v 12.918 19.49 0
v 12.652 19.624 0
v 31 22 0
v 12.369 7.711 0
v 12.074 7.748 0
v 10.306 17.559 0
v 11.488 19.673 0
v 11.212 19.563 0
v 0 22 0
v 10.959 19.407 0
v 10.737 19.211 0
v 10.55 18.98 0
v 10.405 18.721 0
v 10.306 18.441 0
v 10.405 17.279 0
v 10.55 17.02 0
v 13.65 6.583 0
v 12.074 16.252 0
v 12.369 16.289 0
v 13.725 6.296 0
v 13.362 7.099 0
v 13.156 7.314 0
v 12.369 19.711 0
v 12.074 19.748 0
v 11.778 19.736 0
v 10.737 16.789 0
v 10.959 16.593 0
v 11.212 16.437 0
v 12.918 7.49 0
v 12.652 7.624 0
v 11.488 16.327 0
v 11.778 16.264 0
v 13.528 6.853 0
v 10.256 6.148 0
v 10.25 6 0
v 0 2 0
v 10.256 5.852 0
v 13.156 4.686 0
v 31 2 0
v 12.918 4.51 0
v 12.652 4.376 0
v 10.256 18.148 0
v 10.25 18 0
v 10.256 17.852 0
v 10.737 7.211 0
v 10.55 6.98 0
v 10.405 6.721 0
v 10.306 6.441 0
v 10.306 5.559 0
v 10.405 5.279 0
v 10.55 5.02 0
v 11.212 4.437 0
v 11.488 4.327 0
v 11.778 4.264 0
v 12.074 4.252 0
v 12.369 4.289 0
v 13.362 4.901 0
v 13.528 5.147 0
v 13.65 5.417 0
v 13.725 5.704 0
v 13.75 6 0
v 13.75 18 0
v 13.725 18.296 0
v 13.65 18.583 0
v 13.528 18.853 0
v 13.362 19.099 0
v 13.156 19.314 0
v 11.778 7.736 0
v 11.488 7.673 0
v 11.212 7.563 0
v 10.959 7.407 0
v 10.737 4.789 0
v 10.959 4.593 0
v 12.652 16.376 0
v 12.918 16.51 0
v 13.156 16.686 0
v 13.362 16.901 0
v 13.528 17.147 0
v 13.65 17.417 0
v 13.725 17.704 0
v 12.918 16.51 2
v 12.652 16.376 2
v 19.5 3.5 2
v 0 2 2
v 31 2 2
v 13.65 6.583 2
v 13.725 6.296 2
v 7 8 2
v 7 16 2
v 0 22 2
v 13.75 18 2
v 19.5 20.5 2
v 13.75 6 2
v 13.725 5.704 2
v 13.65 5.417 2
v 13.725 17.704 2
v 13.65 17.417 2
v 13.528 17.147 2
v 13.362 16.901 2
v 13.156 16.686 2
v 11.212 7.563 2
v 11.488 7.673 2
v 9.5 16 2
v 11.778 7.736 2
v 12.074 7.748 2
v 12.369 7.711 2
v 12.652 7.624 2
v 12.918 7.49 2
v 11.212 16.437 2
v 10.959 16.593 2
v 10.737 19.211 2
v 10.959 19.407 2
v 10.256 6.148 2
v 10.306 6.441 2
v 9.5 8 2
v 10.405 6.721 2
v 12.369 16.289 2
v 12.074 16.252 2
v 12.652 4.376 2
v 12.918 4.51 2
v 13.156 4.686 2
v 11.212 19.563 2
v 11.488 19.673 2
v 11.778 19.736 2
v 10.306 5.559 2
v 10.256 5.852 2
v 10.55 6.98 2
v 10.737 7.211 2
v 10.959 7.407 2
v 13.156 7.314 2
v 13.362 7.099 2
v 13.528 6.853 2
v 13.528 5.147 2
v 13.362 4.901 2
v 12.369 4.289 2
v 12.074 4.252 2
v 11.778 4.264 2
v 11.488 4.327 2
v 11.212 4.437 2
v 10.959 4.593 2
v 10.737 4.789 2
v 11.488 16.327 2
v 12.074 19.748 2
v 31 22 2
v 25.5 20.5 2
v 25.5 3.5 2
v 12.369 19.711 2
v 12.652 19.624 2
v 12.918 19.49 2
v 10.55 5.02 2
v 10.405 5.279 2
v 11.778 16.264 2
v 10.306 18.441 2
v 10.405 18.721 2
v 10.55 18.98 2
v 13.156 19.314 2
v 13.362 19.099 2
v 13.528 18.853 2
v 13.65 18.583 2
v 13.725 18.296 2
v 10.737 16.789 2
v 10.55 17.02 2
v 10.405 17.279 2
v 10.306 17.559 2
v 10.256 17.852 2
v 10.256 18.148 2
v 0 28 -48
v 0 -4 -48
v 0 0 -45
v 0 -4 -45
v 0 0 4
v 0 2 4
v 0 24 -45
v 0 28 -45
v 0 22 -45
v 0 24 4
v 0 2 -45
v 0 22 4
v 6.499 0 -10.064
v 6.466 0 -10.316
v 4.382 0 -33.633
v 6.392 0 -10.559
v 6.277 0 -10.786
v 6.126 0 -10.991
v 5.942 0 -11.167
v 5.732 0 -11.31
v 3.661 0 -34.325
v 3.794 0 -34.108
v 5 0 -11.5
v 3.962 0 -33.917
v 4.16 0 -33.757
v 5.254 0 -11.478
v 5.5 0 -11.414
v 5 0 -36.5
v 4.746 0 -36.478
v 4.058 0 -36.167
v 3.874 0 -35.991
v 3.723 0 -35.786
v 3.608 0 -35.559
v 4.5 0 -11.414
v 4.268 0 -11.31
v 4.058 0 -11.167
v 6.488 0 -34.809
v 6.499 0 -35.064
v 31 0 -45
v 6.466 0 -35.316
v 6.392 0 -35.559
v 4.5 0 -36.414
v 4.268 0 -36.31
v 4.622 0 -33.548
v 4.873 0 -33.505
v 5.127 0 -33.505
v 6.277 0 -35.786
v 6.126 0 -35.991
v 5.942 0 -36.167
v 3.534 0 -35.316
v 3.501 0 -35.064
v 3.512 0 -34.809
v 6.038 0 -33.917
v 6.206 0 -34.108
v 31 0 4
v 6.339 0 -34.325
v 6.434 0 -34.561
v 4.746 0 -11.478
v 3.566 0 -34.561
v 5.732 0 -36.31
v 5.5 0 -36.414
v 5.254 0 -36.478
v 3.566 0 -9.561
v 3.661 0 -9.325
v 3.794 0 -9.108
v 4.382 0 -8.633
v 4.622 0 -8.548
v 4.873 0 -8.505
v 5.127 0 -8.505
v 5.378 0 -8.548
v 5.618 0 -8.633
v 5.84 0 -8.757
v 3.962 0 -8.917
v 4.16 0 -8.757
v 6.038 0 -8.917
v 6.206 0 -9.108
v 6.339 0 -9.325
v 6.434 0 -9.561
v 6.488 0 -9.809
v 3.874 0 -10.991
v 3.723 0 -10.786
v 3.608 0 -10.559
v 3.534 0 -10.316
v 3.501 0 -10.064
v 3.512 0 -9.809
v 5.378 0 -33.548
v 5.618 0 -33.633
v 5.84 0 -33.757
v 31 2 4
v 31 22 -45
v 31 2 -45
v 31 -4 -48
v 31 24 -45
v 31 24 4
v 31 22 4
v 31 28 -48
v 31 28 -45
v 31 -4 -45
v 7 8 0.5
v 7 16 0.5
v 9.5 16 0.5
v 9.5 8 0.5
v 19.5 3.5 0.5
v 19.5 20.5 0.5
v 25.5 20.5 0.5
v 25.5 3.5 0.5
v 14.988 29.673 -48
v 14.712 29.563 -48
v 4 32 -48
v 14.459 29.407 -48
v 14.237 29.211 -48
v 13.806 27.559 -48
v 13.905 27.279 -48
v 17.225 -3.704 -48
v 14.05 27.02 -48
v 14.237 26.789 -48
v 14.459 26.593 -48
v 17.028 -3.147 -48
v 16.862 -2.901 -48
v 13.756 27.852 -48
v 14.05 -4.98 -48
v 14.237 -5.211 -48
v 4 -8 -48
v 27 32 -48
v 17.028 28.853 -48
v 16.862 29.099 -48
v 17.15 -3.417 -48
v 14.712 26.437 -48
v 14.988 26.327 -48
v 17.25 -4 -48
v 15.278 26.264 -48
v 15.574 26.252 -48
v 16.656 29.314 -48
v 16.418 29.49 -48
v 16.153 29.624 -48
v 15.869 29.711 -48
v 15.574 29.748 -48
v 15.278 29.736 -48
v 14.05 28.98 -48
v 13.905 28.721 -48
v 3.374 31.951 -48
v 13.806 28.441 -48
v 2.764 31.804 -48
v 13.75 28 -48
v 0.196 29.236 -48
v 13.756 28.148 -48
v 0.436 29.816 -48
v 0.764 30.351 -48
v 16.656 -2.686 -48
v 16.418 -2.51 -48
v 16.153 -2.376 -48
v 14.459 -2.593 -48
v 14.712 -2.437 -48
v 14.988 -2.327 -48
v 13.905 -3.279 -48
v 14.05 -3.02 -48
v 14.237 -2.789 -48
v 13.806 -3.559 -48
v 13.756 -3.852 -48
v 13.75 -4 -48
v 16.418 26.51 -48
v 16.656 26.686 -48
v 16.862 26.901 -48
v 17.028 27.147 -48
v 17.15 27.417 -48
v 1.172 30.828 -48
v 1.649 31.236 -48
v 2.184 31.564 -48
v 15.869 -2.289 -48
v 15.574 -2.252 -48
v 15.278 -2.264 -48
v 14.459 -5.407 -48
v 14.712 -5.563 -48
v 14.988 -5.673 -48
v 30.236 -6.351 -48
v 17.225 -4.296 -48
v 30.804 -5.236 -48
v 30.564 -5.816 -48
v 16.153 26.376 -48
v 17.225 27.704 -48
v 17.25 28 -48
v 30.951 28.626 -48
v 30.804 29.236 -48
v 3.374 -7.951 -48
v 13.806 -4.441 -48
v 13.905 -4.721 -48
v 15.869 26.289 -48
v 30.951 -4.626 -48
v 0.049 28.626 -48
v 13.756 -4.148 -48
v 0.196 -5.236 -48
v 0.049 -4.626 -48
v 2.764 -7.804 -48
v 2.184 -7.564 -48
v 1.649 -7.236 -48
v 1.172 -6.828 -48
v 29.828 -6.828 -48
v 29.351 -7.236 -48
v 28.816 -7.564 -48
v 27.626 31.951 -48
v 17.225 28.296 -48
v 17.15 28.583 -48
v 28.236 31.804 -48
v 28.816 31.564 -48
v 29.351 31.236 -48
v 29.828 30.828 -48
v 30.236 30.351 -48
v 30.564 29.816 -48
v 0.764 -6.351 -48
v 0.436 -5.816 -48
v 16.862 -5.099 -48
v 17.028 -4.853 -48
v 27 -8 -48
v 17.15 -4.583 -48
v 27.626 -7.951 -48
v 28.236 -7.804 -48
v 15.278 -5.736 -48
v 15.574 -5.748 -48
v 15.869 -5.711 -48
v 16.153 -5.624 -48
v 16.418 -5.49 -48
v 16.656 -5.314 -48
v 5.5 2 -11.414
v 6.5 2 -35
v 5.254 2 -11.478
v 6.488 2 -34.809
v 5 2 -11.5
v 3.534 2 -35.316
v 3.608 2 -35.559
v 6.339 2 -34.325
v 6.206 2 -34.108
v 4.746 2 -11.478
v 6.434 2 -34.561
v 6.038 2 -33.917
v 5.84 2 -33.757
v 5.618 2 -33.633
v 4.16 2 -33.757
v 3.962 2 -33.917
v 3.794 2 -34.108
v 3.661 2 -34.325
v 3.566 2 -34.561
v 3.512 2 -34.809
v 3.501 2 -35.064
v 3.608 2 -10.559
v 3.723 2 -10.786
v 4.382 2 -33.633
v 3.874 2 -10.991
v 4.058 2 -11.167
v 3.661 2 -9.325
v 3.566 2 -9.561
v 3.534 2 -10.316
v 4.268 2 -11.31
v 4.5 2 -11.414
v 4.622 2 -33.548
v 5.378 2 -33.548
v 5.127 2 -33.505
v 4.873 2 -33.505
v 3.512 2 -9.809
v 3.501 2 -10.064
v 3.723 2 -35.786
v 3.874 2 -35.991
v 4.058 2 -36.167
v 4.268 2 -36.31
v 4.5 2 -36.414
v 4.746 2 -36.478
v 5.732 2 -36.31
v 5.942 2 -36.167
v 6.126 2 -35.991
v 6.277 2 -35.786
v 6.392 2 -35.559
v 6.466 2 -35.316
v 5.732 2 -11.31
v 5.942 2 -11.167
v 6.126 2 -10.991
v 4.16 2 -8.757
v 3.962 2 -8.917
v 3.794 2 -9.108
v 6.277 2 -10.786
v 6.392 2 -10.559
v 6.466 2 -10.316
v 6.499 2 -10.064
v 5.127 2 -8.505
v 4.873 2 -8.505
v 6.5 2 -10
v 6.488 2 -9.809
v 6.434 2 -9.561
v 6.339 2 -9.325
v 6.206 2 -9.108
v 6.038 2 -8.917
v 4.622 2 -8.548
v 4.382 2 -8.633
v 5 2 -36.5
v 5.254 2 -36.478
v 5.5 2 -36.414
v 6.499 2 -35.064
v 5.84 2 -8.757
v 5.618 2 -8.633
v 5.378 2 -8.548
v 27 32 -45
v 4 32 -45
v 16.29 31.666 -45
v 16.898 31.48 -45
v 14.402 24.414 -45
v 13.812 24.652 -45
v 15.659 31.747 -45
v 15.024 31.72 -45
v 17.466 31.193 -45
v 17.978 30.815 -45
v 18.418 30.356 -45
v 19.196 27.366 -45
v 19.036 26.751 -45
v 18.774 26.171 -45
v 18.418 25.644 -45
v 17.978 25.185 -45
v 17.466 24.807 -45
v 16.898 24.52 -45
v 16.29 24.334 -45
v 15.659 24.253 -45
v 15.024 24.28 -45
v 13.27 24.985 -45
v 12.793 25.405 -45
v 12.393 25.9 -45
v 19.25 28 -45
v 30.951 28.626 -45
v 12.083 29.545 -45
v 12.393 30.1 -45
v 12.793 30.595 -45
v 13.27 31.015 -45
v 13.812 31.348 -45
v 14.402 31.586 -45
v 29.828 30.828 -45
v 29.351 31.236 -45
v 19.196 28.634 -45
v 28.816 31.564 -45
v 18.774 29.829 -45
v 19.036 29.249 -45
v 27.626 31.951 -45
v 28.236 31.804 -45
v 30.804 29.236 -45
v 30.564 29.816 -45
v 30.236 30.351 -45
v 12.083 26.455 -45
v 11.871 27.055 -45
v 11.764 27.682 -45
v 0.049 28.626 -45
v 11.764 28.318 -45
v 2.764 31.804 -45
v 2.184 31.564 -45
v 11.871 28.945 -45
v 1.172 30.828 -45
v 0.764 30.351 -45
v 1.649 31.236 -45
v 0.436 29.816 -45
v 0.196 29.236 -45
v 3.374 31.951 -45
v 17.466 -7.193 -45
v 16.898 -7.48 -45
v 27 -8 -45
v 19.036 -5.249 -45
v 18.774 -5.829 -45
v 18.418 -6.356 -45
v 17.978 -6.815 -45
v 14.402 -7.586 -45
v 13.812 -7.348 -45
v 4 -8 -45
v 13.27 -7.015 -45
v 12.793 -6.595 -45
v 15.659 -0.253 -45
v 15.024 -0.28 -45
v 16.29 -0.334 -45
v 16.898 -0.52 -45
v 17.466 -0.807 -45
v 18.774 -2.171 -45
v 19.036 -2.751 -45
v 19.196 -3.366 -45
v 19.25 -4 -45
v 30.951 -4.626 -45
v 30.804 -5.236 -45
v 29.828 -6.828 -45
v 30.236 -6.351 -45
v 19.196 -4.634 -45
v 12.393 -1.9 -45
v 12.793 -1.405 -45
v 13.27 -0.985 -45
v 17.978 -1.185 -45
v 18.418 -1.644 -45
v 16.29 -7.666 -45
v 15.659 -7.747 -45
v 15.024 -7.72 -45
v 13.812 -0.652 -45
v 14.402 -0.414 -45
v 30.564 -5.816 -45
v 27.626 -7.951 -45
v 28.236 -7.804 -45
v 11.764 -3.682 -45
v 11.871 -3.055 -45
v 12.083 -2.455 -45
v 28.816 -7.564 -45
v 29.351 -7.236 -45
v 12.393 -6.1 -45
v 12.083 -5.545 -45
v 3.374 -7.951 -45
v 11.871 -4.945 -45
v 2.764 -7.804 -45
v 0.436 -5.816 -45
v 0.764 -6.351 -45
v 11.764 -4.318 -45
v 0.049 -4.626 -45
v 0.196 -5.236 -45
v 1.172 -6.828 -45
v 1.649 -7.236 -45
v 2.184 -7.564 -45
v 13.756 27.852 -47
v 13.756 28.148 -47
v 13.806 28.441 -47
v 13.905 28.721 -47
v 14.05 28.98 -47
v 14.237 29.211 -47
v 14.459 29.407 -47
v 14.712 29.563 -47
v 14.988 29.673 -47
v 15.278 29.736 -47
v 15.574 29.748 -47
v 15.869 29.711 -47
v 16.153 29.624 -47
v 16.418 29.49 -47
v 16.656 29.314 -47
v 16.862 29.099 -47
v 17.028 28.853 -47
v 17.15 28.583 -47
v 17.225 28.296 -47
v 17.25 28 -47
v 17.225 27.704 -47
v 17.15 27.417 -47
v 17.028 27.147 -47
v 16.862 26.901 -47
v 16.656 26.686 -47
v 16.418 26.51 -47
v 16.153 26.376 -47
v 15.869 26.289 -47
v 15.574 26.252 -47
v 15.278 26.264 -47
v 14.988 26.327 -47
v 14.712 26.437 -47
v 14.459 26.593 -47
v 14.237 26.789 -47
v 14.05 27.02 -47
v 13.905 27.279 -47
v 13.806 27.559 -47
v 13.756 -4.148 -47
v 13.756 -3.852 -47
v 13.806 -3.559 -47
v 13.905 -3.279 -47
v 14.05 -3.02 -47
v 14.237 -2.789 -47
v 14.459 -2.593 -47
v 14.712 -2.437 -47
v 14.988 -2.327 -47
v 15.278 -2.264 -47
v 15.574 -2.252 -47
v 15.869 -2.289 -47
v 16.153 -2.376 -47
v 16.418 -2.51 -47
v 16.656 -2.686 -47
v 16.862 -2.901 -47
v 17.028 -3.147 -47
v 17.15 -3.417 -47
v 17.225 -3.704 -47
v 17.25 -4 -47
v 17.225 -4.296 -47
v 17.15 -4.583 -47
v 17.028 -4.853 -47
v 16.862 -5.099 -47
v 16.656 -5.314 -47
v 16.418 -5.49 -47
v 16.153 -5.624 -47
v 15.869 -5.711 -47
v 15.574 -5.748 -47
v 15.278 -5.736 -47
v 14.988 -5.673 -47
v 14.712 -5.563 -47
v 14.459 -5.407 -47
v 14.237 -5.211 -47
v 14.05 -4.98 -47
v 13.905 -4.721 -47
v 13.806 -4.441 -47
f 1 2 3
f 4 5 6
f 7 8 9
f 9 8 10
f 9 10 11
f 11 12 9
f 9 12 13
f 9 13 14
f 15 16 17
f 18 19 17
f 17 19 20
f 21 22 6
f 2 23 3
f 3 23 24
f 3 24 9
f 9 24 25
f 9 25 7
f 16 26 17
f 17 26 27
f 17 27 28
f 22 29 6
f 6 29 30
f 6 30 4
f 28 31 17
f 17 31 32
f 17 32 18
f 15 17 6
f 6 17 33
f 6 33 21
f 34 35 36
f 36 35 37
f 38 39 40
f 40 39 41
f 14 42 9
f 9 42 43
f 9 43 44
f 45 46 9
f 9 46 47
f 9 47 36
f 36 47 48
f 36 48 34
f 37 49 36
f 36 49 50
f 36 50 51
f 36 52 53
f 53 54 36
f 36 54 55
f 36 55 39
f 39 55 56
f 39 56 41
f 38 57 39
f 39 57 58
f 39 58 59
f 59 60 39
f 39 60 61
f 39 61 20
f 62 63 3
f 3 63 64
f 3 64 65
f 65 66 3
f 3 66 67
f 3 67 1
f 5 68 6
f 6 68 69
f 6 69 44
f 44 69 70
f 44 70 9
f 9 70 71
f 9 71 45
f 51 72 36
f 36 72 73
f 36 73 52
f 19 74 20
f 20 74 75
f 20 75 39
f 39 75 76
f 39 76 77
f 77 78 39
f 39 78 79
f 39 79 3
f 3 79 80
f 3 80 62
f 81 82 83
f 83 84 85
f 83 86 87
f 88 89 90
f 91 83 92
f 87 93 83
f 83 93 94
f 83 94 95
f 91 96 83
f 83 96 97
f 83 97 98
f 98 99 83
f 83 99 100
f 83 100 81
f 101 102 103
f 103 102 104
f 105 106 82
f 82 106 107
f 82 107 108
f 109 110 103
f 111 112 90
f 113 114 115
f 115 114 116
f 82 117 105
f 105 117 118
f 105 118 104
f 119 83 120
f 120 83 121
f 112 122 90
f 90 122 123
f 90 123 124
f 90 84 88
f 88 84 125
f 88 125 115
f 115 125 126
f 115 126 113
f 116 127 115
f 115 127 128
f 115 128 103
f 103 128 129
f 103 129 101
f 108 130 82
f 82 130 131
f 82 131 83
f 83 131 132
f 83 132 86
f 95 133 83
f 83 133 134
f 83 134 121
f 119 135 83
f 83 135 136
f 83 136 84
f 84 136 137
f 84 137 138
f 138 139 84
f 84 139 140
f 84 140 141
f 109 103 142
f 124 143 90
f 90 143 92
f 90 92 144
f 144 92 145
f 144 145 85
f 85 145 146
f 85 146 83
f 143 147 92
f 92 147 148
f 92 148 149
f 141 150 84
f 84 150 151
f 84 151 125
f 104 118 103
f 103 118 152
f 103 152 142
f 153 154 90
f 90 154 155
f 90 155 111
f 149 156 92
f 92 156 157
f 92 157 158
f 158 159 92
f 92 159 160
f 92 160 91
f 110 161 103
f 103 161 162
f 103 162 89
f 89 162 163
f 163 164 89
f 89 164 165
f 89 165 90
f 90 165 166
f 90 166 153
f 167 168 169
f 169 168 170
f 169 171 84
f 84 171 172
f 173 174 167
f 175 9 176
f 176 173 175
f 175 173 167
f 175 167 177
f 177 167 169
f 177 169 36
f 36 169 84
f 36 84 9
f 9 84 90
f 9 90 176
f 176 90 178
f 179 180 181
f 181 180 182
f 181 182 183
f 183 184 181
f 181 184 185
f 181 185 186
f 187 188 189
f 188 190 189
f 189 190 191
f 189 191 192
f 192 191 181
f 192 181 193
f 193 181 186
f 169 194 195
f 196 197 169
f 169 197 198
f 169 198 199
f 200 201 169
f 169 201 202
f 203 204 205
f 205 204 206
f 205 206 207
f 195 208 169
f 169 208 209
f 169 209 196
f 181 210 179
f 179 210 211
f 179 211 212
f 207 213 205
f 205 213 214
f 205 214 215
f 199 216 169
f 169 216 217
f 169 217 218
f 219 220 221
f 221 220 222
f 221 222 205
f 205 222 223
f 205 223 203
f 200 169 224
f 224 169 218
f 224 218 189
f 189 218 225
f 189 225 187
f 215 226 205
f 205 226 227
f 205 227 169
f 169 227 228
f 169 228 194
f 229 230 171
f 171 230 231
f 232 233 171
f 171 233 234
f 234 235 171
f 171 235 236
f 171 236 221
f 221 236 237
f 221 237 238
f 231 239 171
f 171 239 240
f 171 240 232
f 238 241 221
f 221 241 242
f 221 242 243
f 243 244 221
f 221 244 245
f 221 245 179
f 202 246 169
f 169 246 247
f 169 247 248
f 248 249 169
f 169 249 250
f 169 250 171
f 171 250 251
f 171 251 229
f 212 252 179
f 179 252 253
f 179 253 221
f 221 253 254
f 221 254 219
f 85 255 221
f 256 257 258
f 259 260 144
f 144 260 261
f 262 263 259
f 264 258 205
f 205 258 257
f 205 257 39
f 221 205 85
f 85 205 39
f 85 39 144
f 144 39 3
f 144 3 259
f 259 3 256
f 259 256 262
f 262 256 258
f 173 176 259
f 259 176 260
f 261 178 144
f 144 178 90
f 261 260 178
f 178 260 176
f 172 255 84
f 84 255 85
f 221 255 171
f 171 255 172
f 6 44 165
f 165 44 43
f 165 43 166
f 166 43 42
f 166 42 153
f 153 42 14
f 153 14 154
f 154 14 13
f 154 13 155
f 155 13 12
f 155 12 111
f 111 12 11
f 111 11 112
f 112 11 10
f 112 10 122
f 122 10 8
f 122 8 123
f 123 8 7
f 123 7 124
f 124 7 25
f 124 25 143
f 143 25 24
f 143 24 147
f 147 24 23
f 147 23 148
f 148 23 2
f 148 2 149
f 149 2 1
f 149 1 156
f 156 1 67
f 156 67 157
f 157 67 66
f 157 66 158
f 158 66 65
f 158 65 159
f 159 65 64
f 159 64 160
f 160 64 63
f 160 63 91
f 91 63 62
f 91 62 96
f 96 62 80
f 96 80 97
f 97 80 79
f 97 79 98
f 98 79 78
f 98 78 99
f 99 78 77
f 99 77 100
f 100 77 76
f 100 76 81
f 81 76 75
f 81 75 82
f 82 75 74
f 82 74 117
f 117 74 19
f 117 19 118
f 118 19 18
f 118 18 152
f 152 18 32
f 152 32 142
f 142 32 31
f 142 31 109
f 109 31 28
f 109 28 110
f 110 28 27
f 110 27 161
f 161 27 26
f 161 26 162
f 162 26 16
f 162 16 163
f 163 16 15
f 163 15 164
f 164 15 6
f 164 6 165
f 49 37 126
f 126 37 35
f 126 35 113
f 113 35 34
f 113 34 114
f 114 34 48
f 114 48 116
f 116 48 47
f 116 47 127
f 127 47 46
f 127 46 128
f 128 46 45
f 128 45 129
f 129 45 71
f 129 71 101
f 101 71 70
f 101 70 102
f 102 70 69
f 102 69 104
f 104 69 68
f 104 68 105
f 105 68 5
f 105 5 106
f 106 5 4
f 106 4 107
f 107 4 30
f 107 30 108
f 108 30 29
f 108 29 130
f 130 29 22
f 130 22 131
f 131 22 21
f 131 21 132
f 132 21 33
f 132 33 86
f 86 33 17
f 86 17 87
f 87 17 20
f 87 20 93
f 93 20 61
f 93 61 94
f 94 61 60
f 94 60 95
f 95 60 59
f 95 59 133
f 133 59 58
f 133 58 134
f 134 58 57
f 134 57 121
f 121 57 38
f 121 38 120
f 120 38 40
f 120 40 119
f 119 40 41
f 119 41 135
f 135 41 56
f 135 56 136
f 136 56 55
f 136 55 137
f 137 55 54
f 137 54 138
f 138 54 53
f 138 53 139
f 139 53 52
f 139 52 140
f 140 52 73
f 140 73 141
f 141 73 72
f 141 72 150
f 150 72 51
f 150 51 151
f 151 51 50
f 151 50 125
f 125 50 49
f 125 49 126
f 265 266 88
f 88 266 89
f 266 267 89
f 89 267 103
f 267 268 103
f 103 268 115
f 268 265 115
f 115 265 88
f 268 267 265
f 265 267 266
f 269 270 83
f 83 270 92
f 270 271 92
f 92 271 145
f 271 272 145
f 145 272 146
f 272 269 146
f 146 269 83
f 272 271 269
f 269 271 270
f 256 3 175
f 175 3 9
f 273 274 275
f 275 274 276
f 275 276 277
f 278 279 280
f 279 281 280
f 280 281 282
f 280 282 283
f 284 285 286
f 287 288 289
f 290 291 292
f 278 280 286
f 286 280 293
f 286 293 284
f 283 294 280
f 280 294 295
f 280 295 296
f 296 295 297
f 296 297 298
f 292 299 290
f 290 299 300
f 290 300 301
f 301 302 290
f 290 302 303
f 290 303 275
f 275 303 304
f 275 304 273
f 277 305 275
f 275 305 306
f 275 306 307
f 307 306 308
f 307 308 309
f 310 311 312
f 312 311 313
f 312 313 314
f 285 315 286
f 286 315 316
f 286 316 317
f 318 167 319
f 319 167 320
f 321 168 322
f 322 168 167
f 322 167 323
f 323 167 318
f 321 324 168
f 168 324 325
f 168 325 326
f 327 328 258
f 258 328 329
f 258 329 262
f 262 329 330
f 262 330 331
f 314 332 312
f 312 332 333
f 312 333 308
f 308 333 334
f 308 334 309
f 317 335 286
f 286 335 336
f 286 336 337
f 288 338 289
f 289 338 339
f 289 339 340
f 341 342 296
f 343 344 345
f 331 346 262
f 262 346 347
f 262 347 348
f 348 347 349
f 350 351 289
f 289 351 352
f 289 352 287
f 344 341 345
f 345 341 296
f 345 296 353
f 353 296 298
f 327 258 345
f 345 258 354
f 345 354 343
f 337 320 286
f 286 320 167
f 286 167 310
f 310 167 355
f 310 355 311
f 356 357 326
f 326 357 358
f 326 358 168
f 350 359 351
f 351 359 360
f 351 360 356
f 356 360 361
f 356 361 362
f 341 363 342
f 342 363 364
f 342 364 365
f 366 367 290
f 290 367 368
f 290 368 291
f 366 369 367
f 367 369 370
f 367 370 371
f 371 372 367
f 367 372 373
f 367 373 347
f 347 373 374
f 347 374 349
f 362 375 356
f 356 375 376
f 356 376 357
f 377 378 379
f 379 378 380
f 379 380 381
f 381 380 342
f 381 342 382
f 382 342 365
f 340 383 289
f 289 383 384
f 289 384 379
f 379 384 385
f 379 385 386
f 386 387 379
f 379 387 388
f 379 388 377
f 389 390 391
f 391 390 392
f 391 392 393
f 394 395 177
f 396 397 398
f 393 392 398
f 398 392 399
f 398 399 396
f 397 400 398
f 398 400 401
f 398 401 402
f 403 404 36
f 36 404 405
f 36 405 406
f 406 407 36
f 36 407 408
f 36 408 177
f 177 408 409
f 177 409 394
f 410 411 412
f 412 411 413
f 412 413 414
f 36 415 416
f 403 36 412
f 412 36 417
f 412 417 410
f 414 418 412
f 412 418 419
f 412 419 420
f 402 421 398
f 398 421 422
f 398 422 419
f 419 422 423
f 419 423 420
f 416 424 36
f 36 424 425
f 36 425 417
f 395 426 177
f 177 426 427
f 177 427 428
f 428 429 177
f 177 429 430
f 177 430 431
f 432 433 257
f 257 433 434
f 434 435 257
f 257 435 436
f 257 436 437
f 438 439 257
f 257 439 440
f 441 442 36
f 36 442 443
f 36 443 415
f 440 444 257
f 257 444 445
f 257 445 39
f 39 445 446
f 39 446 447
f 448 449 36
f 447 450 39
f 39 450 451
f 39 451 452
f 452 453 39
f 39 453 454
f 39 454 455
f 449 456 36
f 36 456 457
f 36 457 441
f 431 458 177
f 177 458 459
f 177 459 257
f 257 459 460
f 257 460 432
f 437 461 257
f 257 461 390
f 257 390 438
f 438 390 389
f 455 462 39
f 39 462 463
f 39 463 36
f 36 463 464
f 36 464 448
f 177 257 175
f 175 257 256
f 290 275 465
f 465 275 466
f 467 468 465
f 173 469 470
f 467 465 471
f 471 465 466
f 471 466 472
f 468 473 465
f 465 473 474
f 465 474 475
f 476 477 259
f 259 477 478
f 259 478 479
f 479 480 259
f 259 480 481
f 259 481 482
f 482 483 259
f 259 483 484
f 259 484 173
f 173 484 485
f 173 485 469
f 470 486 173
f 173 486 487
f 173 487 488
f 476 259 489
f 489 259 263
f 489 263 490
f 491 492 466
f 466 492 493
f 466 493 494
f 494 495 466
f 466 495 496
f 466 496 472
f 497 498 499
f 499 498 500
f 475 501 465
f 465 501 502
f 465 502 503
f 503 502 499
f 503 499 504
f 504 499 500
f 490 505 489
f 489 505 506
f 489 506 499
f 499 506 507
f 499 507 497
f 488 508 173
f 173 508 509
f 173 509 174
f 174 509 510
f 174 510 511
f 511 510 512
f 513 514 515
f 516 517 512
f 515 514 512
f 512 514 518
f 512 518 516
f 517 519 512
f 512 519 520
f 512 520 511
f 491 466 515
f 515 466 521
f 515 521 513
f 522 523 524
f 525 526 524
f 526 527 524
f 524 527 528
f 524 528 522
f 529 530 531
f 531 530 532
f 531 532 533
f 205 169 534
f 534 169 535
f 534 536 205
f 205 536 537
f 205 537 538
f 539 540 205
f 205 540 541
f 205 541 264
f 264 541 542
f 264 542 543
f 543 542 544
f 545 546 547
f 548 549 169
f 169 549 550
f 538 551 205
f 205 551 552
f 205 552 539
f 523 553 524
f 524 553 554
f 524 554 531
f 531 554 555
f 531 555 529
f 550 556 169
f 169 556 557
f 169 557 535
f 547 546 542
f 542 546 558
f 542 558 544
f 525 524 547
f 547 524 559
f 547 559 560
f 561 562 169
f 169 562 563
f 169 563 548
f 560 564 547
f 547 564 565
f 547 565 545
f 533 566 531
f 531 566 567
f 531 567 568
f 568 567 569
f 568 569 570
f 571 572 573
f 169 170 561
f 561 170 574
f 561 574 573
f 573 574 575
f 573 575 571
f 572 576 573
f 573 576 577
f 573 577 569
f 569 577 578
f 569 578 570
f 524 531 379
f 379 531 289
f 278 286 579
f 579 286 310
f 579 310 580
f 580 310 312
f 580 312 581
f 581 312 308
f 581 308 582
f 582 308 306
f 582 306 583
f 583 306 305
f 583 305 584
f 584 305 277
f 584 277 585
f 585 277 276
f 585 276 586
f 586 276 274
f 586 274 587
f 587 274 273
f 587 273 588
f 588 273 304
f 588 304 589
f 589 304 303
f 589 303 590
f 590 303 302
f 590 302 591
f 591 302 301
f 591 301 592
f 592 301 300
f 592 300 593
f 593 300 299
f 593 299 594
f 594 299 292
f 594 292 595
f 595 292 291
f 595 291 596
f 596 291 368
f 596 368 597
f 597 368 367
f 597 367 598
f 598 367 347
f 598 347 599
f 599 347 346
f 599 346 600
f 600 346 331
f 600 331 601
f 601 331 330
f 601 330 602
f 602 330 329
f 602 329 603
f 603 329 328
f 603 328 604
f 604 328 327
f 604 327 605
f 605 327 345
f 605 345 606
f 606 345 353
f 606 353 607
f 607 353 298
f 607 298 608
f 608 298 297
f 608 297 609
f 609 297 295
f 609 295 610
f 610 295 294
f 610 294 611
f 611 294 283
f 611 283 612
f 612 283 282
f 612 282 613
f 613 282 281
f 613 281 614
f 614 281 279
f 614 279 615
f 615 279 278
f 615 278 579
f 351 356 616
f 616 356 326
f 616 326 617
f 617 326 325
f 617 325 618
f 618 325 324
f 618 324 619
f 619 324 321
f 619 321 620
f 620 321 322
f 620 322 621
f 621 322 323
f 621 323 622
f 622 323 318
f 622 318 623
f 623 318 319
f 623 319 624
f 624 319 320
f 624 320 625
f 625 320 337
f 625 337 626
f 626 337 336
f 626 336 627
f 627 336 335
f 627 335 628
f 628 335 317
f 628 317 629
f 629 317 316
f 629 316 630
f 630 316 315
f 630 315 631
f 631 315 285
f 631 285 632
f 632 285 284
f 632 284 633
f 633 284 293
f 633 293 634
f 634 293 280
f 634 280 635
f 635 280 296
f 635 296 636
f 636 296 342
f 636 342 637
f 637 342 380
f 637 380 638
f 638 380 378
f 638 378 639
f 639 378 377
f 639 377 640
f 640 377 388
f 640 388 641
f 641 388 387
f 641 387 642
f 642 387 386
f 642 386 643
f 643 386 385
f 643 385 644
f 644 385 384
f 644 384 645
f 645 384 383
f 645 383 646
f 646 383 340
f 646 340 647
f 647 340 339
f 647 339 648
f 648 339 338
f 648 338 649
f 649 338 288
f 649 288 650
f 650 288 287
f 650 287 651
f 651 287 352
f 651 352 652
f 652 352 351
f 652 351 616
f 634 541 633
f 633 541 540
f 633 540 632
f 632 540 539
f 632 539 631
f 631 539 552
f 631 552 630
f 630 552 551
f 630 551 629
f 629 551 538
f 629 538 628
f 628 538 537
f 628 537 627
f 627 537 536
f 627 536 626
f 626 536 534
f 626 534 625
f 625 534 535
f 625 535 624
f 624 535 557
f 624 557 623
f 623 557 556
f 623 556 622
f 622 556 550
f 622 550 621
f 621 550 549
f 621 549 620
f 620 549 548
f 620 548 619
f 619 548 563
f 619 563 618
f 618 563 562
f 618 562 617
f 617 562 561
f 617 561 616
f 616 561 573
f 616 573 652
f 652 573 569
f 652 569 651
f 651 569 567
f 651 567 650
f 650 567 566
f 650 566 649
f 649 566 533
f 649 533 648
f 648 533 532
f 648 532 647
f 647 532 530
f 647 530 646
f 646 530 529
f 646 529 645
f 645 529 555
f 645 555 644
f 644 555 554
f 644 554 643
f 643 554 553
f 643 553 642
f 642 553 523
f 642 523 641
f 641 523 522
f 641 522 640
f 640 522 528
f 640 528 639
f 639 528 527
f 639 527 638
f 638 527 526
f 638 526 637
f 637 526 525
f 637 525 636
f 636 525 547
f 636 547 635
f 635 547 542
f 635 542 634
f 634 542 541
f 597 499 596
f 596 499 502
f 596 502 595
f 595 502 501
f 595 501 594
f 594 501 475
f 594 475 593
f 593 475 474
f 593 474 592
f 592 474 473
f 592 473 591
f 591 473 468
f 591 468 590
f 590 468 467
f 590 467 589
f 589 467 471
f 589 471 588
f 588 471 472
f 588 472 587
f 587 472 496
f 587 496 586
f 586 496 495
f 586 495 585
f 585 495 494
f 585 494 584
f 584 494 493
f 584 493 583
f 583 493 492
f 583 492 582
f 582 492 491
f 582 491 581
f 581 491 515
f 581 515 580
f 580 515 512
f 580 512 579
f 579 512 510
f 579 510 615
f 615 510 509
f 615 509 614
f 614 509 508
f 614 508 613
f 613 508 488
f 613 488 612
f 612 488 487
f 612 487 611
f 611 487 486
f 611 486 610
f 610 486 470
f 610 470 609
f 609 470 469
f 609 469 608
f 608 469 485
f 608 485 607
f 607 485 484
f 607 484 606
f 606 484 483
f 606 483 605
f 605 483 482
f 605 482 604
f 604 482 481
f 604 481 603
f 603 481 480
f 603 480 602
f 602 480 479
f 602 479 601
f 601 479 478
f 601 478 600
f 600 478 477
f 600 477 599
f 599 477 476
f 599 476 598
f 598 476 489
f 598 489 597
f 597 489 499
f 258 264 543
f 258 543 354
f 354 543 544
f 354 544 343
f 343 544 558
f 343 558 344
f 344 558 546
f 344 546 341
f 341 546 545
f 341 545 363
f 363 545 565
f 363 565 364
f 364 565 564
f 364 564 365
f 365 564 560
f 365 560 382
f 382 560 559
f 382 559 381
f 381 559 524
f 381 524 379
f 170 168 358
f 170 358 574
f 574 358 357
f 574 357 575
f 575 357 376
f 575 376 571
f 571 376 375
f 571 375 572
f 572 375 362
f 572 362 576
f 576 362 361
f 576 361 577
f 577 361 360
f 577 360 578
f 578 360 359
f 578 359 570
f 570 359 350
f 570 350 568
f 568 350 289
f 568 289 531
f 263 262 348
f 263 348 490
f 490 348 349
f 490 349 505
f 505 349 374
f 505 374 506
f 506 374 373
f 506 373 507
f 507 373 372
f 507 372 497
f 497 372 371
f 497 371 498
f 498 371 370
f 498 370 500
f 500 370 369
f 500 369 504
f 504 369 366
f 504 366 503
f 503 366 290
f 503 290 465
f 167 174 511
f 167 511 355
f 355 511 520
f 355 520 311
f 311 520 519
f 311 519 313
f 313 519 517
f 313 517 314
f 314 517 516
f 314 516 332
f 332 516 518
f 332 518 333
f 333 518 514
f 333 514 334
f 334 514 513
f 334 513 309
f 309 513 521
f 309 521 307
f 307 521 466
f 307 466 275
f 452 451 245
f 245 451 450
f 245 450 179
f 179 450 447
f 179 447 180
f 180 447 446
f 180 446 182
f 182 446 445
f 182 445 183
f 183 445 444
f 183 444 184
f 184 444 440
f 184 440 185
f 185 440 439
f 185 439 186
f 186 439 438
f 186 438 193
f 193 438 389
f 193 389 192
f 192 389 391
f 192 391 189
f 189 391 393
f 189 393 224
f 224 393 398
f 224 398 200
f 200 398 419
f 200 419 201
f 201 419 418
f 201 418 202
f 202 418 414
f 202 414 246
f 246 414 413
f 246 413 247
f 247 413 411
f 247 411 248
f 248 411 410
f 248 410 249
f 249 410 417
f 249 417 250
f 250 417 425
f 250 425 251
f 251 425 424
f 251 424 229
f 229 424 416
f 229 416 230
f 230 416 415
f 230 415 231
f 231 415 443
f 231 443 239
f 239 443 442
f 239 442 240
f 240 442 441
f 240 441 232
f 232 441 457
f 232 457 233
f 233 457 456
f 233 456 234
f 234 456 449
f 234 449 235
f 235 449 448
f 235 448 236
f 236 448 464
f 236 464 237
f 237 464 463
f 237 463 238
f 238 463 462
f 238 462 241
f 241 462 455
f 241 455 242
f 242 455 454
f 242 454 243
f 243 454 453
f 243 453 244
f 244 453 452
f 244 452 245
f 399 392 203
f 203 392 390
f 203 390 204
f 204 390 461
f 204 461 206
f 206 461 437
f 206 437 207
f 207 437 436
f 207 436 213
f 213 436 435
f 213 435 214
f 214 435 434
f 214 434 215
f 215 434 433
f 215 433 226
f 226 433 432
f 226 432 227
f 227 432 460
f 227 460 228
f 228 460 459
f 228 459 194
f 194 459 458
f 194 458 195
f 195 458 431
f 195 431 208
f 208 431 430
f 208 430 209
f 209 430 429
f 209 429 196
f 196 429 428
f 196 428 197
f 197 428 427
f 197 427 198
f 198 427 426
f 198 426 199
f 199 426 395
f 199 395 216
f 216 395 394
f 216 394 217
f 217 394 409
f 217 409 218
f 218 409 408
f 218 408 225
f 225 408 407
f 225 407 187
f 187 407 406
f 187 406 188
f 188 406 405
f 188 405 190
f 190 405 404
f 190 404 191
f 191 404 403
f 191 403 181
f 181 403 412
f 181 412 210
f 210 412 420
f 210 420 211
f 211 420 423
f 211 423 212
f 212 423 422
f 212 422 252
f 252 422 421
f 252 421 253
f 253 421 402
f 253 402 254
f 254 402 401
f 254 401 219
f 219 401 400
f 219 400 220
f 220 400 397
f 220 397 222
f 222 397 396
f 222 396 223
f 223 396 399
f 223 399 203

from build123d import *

# Parameters (mm, degrees)
SKETCH1_W           = 31
SKETCH1_H           = 24
BOSS_EXTRUDE1_DEPTH = 2
SKETCH2_W           = 31
SKETCH2_H           = 2
BOSS_EXTRUDE2_DEPTH = 2
SKETCH4_R           = 1.75
CUT_EXTRUDE1_DEPTH  = 3
SKETCH5_W           = 2.5
SKETCH5_H           = 8
SKETCH5_W_2         = 6
SKETCH5_H_2         = 17
CUT_EXTRUDE2_DEPTH  = 1.5
SKETCH6_W           = 31
SKETCH6_H           = 2
BOSS_EXTRUDE4_DEPTH = 48
BOSS_EXTRUDE5_START = 8
SKETCH8_W           = 31
SKETCH8_H           = 3
BOSS_EXTRUDE5_DEPTH = 40
SKETCH9_R           = 1.75
CUT_EXTRUDE3_DEPTH  = 38
CHAMFER1_SIZE       = 2
FILLET1_R           = 4
SKETCH10_R          = 1.5
CUT_EXTRUDE4_DEPTH  = 5


with BuildPart() as part:
    # Sketch1 → Boss-Extrude1 (new body)
    with BuildSketch(Plane.XY):
        with Locations((15.5, 12)):
            Rectangle(SKETCH1_W, SKETCH1_H)
    extrude(amount=BOSS_EXTRUDE1_DEPTH)

    # Sketch2 → Boss-Extrude2 (add)
    with BuildSketch(Plane.XY.offset(2)):
        with Locations((15.5, 23)):
            Rectangle(SKETCH2_W, SKETCH2_H)
        with Locations((15.5, 1)):
            Rectangle(SKETCH2_W, SKETCH2_H)
    extrude(amount=BOSS_EXTRUDE2_DEPTH)

    # Sketch4 → Cut-Extrude1 (cut)
    with BuildSketch(Plane.XY.offset(2)):
        with Locations((12, 18)):
            Circle(SKETCH4_R)
        with Locations((12, 6)):
            Circle(SKETCH4_R)
    extrude(amount=-CUT_EXTRUDE1_DEPTH, mode=Mode.SUBTRACT)

    # Sketch5 → Cut-Extrude2 (cut)
    with BuildSketch(Plane.XY.offset(2)):
        with Locations((8.25, 12)):
            Rectangle(SKETCH5_W, SKETCH5_H)
        with Locations((22.5, 12)):
            Rectangle(SKETCH5_W_2, SKETCH5_H_2)
    extrude(amount=-CUT_EXTRUDE2_DEPTH, mode=Mode.SUBTRACT)

    # Sketch6 → Boss-Extrude4 (add)
    with BuildSketch(Plane(origin=(0, 0, 0), x_dir=(-1, 0, 0), z_dir=(0, 0, -1))):
        with Locations((-15.5, 23)):
            Rectangle(SKETCH6_W, SKETCH6_H)
        with Locations((-15.5, 1)):
            Rectangle(SKETCH6_W, SKETCH6_H)
    extrude(amount=BOSS_EXTRUDE4_DEPTH)

    # Sketch8 → Boss-Extrude5 (add)
    with BuildSketch(Plane.XZ.offset(BOSS_EXTRUDE5_START)):
        with Locations((15.5, -46.5)):
            Rectangle(SKETCH8_W, SKETCH8_H)
    extrude(amount=-BOSS_EXTRUDE5_DEPTH)

    # Sketch9 → Cut-Extrude3 (cut)
    with BuildSketch(Plane.XY.offset(-45)):
        with Locations((15.5, 28)):
            Circle(SKETCH9_R)
        with Locations((15.5, -4)):
            Circle(SKETCH9_R)
    extrude(amount=-CUT_EXTRUDE3_DEPTH, mode=Mode.SUBTRACT)

    # Chamfer1
    chamfer1_edges = [part.edges().sort_by_distance(p)[0] for p in [
        (13.75, 28, -45),
        (13.75, -4, -45),
    ]]
    chamfer(chamfer1_edges, length=CHAMFER1_SIZE)

    # Fillet1
    fillet1_edges = [part.edges().sort_by_distance(p)[0] for p in [
        (0, 32, -46.5),
        (31, 32, -46.5),
        (0, -8, -46.5),
        (31, -8, -46.5),
    ]]
    fillet(fillet1_edges, radius=FILLET1_R)

    # Sketch10 → Cut-Extrude4 (cut)
    with BuildSketch(Plane.XZ):
        with Locations(Location((5, -10, 0), (0, 0, 270))):
            Circle(SKETCH10_R)
        with Locations(Location((5, -35, 0), (0, 0, 270))):
            Circle(SKETCH10_R)
    extrude(amount=-CUT_EXTRUDE4_DEPTH, mode=Mode.SUBTRACT)


solid = part.part
